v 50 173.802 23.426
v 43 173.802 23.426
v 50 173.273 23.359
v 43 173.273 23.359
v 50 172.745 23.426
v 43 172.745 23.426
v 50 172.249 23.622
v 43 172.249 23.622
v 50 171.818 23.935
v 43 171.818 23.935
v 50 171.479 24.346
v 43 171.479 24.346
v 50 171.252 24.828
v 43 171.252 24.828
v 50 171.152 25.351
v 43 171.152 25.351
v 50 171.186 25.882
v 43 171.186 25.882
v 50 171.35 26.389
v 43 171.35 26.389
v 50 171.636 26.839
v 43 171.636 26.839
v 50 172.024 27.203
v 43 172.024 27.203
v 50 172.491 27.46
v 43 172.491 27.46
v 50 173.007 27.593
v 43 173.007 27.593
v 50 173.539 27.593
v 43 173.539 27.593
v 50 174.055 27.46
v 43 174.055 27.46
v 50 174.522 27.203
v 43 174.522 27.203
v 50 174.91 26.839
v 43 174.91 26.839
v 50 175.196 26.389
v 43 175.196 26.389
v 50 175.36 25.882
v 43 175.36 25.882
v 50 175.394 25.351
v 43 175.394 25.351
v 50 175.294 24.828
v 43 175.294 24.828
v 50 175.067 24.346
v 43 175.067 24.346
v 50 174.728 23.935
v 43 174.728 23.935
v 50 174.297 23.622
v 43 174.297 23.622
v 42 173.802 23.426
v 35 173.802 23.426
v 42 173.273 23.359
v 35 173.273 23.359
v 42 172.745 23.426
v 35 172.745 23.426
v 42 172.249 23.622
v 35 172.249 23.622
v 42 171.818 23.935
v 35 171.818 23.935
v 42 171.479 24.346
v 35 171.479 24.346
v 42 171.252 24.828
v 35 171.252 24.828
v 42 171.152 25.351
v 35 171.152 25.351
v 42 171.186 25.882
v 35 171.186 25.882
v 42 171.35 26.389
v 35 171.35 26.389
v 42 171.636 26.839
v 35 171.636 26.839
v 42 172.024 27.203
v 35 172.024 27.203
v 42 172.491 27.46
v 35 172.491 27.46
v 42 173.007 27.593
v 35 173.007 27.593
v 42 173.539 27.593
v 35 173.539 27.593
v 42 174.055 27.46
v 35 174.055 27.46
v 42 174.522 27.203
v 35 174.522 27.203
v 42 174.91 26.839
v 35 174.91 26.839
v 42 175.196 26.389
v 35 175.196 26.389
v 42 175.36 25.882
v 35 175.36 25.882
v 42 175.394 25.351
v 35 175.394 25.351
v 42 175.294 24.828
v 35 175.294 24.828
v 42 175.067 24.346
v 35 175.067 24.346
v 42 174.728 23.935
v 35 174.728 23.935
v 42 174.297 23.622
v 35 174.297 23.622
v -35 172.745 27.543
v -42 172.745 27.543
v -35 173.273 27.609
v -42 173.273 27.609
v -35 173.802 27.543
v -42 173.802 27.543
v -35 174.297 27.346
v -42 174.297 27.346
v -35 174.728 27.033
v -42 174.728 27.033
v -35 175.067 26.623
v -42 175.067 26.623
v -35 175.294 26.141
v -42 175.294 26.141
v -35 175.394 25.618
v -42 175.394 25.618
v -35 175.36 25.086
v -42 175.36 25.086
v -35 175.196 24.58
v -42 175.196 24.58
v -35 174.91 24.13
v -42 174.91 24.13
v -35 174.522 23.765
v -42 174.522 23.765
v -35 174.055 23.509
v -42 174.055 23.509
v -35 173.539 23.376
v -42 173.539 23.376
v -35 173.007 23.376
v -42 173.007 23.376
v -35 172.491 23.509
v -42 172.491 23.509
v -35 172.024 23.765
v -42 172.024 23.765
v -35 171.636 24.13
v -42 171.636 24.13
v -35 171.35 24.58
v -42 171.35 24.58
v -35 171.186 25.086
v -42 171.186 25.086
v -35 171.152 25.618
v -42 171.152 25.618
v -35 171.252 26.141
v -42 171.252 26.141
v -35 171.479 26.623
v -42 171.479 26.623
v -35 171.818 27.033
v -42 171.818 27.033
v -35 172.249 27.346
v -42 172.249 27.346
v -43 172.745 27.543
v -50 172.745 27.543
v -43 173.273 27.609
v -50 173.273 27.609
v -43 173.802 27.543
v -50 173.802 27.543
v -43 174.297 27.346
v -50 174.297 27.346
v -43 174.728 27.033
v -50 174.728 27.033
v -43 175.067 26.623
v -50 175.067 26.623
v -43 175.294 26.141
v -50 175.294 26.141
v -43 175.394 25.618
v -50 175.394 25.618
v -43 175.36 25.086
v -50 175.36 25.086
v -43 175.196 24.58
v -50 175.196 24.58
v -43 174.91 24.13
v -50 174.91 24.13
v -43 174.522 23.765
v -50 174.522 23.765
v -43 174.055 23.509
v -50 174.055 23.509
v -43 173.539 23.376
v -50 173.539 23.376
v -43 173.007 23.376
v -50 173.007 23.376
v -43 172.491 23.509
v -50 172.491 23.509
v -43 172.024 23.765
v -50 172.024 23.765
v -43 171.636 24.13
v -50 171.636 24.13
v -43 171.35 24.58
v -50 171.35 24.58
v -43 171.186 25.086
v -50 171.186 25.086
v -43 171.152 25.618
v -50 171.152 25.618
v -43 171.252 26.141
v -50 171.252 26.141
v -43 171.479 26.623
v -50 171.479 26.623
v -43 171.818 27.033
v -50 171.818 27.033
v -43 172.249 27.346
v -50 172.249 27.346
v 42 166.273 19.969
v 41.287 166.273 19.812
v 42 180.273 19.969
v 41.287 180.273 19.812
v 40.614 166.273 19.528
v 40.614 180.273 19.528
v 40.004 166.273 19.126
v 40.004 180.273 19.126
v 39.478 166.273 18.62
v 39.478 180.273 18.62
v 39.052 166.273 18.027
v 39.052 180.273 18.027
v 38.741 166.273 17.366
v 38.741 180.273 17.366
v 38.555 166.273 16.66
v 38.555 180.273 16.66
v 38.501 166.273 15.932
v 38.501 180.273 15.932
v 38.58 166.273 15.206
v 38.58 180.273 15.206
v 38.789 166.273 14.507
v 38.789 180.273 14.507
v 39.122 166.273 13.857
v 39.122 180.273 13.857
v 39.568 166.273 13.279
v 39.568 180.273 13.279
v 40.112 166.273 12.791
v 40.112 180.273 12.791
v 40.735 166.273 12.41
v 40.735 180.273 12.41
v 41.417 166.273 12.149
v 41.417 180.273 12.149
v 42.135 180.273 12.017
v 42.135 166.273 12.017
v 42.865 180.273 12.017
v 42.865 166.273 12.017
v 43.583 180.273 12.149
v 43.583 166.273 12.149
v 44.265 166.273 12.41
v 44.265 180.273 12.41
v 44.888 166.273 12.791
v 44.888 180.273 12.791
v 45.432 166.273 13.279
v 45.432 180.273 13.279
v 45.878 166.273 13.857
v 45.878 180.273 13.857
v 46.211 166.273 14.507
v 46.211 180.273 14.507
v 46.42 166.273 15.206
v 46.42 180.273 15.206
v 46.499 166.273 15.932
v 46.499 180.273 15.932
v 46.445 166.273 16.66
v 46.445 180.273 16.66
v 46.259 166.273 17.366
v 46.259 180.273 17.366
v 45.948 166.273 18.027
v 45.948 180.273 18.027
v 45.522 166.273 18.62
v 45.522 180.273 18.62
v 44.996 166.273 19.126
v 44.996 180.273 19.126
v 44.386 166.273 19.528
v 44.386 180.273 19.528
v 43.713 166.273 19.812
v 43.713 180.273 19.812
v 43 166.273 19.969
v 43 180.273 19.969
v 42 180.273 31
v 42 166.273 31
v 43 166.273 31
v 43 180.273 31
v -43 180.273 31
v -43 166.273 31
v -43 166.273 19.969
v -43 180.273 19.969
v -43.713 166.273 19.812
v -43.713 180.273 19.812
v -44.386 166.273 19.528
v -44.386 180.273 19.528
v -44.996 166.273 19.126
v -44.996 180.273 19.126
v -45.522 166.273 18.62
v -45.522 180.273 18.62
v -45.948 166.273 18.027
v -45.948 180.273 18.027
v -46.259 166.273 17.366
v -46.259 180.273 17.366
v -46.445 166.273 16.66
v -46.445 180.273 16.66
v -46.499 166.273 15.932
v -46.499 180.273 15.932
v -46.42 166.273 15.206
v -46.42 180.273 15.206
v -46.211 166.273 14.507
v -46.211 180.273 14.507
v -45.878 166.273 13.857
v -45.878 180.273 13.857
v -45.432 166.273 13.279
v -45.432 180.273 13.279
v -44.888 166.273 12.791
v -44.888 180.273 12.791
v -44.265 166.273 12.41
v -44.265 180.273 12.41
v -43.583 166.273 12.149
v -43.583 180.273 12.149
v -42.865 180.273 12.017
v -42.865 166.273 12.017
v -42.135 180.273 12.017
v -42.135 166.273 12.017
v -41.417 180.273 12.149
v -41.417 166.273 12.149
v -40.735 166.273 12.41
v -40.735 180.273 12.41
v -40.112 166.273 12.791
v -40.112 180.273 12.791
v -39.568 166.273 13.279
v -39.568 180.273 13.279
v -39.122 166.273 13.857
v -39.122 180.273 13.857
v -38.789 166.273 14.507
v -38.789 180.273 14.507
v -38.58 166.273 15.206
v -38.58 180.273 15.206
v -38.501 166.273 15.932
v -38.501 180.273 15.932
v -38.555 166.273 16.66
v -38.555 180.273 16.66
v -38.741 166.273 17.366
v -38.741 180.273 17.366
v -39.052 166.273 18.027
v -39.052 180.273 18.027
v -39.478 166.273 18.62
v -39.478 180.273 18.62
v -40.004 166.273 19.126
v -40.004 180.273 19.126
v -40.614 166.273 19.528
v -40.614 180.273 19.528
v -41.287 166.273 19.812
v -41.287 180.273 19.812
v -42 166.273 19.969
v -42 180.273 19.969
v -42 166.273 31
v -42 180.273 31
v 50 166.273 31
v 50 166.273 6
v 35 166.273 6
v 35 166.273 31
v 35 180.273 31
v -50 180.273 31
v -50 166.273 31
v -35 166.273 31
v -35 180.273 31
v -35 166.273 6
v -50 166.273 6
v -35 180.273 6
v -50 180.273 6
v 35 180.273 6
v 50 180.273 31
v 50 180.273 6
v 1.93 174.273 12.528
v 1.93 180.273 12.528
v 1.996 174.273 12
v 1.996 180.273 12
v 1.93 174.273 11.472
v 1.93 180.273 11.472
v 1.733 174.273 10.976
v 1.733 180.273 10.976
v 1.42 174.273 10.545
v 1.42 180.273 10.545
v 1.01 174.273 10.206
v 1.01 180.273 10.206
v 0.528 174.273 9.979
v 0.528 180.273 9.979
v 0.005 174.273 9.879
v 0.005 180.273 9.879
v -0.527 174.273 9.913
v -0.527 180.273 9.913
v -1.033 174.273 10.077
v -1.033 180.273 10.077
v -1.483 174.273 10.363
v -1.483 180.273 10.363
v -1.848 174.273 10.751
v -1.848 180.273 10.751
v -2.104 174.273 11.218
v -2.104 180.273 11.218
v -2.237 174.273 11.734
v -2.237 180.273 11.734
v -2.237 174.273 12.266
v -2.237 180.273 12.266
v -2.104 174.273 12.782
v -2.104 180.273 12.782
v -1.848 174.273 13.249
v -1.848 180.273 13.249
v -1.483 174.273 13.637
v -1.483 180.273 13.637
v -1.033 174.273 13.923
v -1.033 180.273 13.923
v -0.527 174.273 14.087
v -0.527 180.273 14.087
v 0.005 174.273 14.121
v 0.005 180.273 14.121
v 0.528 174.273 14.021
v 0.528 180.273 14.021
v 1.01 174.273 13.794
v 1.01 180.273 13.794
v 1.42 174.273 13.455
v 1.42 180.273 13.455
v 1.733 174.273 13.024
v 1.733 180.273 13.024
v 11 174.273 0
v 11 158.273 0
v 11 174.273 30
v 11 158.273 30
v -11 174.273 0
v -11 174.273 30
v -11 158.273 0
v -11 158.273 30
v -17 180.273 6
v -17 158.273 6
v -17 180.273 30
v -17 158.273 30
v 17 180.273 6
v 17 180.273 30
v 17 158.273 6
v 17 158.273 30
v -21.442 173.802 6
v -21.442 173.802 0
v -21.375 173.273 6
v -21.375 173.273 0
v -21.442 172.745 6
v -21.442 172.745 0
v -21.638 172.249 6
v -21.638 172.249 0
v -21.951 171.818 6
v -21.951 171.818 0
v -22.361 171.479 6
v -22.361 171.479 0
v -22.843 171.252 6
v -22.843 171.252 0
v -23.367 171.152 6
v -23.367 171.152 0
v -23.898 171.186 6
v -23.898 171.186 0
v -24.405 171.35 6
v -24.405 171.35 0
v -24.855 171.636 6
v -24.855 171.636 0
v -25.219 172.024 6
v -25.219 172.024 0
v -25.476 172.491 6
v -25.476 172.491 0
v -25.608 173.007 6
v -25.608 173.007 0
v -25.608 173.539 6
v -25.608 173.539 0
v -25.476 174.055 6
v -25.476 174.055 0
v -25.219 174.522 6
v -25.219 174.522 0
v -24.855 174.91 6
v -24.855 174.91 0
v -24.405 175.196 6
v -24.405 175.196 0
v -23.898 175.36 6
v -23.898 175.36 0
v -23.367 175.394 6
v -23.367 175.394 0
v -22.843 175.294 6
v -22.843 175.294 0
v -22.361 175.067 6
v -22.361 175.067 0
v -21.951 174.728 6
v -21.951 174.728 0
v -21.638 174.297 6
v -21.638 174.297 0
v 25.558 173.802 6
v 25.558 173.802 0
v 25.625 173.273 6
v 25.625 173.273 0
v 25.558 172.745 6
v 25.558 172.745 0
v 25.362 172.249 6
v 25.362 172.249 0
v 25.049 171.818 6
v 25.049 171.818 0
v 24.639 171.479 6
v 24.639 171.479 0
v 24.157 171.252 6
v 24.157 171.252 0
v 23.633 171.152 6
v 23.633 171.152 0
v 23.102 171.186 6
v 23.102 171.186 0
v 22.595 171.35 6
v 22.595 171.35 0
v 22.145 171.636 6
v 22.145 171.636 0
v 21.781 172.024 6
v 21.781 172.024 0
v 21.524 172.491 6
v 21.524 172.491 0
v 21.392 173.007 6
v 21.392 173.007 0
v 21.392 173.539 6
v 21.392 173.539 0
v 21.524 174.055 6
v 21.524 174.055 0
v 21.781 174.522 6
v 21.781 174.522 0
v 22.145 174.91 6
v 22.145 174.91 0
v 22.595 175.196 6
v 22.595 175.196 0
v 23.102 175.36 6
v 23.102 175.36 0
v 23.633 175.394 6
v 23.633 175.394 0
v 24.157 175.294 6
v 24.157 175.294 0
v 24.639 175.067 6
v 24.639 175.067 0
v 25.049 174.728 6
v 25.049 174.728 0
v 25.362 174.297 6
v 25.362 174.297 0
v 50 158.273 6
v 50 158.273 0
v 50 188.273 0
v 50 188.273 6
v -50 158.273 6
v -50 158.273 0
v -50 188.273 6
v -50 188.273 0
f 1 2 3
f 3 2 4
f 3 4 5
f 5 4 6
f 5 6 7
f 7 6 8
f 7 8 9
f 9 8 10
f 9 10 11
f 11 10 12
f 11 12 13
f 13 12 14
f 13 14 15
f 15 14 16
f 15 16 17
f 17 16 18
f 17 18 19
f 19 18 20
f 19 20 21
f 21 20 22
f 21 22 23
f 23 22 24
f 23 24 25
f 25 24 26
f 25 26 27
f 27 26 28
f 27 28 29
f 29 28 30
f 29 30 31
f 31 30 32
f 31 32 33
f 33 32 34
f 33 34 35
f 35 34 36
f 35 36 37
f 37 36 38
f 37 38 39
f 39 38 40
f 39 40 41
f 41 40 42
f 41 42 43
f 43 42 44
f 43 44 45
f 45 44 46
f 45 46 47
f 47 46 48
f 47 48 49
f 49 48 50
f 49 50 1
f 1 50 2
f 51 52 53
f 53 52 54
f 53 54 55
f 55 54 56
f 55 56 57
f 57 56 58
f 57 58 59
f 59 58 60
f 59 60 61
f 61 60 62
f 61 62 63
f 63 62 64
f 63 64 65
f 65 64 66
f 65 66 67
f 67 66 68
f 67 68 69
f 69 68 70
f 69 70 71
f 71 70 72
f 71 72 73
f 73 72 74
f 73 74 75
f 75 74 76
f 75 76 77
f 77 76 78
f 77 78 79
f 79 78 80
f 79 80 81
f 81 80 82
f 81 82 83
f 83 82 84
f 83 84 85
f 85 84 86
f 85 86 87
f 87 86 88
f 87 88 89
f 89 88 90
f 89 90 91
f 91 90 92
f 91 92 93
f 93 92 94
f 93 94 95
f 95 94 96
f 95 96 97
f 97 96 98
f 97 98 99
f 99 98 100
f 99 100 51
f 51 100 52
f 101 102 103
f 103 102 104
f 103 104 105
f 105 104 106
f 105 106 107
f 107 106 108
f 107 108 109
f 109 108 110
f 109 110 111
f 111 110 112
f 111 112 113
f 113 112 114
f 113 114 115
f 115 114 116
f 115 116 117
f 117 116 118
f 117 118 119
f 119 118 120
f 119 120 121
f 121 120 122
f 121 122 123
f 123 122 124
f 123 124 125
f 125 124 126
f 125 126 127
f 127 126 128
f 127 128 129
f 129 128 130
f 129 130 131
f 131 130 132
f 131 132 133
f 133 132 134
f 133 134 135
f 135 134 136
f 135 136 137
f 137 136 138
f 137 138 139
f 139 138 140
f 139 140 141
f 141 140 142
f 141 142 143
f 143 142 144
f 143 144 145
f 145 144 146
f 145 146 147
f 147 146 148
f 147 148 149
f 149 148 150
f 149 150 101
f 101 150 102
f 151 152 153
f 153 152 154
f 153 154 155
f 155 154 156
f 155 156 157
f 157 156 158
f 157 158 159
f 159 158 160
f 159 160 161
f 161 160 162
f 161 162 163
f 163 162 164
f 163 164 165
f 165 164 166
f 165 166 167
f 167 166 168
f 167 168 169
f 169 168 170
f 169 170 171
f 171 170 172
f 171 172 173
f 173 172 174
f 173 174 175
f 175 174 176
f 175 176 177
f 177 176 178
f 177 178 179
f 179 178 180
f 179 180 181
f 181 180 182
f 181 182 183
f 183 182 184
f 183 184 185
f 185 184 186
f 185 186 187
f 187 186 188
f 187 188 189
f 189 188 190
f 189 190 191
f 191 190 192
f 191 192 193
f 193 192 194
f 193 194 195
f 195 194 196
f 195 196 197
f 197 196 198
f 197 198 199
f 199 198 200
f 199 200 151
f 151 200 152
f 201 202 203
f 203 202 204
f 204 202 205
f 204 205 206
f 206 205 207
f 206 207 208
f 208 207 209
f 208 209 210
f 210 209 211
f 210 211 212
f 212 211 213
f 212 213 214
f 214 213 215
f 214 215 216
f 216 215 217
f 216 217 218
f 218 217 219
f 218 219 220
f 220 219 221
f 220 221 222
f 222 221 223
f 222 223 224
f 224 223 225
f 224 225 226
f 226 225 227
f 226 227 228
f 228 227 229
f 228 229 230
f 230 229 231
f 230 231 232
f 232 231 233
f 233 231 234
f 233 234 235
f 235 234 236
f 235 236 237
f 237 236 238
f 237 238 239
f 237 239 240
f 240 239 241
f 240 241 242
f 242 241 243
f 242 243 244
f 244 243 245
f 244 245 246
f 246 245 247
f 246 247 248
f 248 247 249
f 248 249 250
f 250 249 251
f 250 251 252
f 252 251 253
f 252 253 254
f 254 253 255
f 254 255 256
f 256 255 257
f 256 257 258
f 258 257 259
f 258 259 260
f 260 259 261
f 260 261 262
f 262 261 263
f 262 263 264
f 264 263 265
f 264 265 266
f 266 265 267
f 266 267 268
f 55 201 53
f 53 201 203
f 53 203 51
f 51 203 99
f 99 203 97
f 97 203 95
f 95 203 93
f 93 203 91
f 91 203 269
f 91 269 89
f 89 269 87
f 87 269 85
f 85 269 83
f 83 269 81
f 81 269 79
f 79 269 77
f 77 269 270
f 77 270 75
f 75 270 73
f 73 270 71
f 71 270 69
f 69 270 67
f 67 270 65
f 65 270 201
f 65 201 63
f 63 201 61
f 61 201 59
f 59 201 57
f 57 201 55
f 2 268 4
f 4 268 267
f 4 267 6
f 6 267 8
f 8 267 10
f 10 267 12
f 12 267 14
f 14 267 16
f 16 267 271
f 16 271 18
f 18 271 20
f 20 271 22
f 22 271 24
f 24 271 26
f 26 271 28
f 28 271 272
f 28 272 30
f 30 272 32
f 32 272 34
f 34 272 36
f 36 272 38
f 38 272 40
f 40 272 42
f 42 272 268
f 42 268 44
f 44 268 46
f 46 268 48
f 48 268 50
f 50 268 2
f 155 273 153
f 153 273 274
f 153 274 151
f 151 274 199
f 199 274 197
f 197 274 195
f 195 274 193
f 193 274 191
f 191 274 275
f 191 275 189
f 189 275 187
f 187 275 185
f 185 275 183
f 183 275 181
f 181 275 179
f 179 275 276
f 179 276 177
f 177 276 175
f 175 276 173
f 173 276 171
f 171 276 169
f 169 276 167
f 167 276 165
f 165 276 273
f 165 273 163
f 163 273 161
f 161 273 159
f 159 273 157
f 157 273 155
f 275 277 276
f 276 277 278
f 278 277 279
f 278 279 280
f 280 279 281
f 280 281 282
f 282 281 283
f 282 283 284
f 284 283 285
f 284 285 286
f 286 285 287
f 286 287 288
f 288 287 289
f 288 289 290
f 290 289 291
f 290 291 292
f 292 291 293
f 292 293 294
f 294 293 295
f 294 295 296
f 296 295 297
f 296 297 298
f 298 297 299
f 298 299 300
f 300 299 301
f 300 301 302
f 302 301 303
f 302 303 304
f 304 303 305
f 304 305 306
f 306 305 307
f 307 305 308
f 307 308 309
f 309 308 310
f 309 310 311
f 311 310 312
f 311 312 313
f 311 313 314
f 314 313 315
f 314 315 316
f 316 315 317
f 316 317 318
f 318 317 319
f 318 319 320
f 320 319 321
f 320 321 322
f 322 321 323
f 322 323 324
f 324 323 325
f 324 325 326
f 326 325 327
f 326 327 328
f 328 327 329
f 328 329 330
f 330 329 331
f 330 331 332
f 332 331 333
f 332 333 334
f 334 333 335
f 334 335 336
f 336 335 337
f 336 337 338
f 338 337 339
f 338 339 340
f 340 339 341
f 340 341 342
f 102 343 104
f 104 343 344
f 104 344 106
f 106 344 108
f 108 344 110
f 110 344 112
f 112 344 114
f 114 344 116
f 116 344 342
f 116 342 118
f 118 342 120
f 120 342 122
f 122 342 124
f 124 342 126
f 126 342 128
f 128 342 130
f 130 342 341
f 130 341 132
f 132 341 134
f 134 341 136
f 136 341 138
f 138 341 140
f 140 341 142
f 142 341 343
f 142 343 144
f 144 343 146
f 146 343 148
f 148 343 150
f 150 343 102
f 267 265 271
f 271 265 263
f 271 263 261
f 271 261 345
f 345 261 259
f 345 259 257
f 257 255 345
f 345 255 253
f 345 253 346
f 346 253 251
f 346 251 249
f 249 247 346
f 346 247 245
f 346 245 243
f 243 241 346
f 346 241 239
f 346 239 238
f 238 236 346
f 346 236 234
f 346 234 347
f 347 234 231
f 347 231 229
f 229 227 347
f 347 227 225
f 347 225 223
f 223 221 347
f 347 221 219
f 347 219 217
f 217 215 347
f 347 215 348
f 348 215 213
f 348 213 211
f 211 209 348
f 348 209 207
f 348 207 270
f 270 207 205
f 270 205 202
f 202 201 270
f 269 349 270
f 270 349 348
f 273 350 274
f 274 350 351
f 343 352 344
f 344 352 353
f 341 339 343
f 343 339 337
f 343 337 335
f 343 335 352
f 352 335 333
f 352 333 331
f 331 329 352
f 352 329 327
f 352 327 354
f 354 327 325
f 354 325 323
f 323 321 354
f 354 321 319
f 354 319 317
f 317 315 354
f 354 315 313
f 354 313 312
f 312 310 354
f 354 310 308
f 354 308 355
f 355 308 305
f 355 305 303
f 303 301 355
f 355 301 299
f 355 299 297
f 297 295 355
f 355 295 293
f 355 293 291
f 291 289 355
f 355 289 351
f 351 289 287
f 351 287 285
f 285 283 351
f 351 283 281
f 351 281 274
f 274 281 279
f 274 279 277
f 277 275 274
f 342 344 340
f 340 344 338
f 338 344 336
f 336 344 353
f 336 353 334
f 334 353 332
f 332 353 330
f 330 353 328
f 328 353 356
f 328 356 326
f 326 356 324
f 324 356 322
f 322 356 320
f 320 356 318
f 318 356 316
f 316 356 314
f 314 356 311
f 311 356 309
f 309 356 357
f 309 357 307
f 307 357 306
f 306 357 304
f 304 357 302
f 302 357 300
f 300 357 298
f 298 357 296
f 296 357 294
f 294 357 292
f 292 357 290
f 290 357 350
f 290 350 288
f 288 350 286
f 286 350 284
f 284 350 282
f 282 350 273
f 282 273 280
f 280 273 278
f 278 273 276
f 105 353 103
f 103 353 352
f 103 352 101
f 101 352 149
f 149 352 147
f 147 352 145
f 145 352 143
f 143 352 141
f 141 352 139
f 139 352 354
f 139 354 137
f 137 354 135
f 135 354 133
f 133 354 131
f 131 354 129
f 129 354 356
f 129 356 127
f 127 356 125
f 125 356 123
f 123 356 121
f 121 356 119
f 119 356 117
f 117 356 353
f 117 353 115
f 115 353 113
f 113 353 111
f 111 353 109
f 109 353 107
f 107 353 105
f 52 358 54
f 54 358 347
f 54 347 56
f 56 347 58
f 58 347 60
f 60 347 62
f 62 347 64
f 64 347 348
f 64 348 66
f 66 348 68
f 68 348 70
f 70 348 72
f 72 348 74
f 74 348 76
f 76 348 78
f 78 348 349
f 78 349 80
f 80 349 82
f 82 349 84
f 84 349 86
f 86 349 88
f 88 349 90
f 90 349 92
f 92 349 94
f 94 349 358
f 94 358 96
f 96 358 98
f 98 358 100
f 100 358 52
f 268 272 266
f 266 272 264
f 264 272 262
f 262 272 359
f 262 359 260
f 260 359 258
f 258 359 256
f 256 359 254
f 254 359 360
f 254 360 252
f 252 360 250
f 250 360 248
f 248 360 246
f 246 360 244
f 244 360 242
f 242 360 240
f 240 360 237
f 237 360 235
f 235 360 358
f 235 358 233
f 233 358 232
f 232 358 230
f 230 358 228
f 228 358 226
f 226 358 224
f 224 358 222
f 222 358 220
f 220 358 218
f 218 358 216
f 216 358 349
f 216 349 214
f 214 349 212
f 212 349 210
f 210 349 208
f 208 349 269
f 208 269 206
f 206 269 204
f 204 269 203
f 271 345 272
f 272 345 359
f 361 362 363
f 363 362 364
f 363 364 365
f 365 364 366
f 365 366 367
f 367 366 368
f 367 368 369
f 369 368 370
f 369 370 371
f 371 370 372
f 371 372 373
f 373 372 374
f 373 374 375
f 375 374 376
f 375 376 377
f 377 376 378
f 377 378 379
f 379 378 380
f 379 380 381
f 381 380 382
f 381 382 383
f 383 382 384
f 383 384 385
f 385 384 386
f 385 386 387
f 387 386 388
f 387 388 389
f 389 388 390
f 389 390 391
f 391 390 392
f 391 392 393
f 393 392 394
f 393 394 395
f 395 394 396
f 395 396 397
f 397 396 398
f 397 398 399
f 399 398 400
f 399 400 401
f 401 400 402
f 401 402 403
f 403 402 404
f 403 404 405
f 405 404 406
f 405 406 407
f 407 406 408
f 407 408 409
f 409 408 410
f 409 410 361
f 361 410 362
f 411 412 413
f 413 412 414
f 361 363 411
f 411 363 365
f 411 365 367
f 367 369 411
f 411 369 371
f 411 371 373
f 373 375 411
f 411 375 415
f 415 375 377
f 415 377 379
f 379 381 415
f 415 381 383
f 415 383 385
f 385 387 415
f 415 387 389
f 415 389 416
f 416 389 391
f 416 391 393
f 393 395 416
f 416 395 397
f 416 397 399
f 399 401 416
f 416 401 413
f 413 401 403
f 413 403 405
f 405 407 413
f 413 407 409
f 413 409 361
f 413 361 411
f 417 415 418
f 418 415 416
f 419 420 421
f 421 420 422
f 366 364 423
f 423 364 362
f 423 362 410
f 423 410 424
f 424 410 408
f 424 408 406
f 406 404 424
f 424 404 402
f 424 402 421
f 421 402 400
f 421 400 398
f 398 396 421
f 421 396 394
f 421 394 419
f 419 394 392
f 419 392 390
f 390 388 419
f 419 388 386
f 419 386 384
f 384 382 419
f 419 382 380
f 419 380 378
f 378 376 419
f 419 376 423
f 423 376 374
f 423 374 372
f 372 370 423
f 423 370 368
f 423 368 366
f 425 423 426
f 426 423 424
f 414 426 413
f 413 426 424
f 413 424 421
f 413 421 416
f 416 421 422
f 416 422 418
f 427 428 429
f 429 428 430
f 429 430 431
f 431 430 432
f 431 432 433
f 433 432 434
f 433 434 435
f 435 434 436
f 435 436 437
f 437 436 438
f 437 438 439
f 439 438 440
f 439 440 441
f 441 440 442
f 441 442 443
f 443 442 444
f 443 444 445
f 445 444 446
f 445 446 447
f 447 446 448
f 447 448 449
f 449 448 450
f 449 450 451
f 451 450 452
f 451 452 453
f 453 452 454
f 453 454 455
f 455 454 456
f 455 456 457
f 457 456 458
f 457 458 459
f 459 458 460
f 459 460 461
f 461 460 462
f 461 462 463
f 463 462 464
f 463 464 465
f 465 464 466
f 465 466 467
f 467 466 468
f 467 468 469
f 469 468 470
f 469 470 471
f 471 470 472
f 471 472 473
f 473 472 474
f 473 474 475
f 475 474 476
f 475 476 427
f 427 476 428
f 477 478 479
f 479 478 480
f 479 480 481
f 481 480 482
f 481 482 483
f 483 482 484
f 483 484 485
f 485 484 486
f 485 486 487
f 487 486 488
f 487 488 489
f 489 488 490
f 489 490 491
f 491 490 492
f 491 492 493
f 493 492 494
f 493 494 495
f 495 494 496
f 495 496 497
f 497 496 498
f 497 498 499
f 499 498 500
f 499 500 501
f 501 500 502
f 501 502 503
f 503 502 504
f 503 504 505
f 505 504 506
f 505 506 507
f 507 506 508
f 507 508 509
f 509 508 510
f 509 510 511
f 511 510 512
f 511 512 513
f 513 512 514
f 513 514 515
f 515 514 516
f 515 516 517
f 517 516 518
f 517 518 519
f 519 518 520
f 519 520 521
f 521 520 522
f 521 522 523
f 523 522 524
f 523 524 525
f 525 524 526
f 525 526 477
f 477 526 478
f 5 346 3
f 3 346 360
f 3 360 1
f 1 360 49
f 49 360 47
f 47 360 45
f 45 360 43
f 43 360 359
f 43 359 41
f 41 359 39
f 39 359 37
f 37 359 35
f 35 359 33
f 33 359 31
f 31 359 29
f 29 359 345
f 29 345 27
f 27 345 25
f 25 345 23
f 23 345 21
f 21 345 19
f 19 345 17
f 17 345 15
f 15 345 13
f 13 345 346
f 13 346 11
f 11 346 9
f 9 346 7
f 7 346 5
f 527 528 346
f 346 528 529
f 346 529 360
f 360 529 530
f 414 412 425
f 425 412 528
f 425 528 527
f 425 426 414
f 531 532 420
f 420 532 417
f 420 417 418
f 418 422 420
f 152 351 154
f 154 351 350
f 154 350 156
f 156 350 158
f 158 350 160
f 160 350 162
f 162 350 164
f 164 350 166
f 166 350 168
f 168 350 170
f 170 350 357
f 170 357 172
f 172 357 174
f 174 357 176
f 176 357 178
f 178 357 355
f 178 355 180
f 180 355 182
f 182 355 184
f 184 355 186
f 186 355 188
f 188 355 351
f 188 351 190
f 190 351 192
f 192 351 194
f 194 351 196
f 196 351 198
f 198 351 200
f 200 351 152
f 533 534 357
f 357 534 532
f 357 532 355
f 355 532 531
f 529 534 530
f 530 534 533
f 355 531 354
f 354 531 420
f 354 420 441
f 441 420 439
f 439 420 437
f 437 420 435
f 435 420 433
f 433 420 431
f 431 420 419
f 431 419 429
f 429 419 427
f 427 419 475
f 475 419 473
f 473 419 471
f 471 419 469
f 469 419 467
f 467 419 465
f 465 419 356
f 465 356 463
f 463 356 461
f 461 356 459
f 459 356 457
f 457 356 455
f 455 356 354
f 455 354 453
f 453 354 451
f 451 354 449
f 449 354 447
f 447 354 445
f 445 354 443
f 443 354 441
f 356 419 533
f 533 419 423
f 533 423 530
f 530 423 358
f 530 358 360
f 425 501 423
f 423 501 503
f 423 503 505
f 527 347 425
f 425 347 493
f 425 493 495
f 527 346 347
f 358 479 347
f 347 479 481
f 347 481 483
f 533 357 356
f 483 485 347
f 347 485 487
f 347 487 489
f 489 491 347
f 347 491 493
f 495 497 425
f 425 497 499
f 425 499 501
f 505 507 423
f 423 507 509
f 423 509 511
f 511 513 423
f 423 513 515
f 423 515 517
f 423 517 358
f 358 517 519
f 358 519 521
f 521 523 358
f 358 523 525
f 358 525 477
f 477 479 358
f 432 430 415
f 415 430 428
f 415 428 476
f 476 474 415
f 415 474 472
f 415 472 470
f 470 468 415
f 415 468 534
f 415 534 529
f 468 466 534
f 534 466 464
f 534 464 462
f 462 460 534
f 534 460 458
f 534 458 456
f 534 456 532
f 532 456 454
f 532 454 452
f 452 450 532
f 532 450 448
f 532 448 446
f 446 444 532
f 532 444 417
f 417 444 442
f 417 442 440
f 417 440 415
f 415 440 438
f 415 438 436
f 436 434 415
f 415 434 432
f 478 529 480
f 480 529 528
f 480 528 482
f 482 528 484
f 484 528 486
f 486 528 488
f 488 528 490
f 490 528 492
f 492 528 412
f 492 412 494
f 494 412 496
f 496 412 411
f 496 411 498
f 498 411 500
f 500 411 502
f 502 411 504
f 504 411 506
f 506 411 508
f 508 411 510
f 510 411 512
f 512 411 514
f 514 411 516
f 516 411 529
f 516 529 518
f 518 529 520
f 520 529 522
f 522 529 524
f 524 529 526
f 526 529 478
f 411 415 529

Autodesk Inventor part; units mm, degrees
ref_plane "YZ Plane" through (0, 0, 0) normal (1, 0, 0) x (0, 1, 0)
ref_plane "XZ Plane" through (0, 0, 0) normal (0, 1, 0) x (-1, 0, 0)
ref_plane "XY Plane" through (0, 0, 0) normal (0, 0, 1) x (1, 0, 0)
sketch "Sketch1" plane through (0, 0, 0) normal (0, 0, 1) x (1, 0, 0)
  line L0 (50, 188.2731) -> (-50, 188.2731)
  line L1 (-50, 188.2731) -> (-50, 158.2731)
  line L2 (50, 158.2731) -> (50, 188.2731)
  line L3 (11, 158.2731) -> (11, 174.2731)
  line L4 (11, 174.2731) -> (-11, 174.2731)
  line L5 (-11, 174.2731) -> (-11, 158.2731)
  line L6 (17, 158.2731) -> (17, 180.2731)
  line L7 (17, 180.2731) -> (-17, 180.2731)
  line L8 (-17, 180.2731) -> (-17, 158.2731)
  line L9 (17, 158.2731) -> (50, 158.2731)
  line L10 (11, 158.2731) -> (17, 158.2731)
  line L11 (-11, 158.2731) -> (-17, 158.2731)
  line L12 (-17, 158.2731) -> (-50, 158.2731)
  circle A0 centre (23.5, 173.2731) radius 2.125
  circle A1 centre (-23.5, 173.2731) radius 2.125
  line L13 (0, 0) -> (0, 215.8038) construction
  line L14 (0, 158.2731) -> (11, 158.2731) construction
  line L15 (0, 158.2731) -> (-11, 158.2731) construction
  line L16 (-23.5, 173.2731) -> (23.5, 173.2731) construction
  line L17 (-23.5, 173.2731) -> (-23.5, 188.2731) construction
  line L18 (-23.5, 173.2731) -> (-23.5, 158.2731) construction
  dimension "d1" = 30
  dimension "d2" = 100
  dimension "d3" = 22
  dimension "d4" = 6
  dimension "d5" = 16
  dimension "d6" = 6
  dimension "d11" = 4.25
  dimension "d13" = 4.25
  dimension "d18" = 47
extrude "Extrusion1" add sketch "Sketch1" along normal blind 6 contours L2 L9 L6 L7 L8 L12 L1 L0
extrude "Extrusion2" add sketch "Sketch1" along normal blind 30 contours L10 L3 L4 L5 L11 L8 L7 L6
sketch "Sketch2" plane through (-17, 180.2731, 6) normal (0, 1, 0) x (1, 0, 0)
  circle A0 centre (16.8713, -6) radius 2.125
  line L0 (16.8713, -6) -> (33.9314, -6) construction
  line L1 (16.8713, -6) -> (-0.1889, -6) construction
  line L2 (67, 6) -> (-33, 6) projected
  point P0 (17, 6)
  dimension "d14" = 4.25
  dimension "d15" = 12
extrude "Extrusion3" cut sketch "Sketch2" against normal up to next
sketch "Sketch3" plane through (0, 0, 6) normal (0, 0, 1) x (1, 0, 0)
  line L0 (50, 158.2731) -> (50, 188.2731) projected
  line L1 (50, 180.2731) -> (35, 180.2731)
  line L2 (35, 180.2731) -> (35, 166.2731)
  line L3 (35, 166.2731) -> (50, 166.2731)
  line L4 (43.2299, 188.2731) -> (43.2299, 180.2731) construction
  line L5 (43.4666, 166.2731) -> (43.4666, 158.2731) construction
  line L6 (50, 188.2731) -> (-50, 188.2731) projected
  line L7 (17, 158.2731) -> (50, 158.2731) projected
  line L8 (-50, 188.2731) -> (-50, 158.2731) projected
  line L9 (-50, 180.2731) -> (-35, 180.2731)
  line L10 (-35, 180.2731) -> (-35, 166.2731)
  line L11 (-35, 166.2731) -> (-50, 166.2731)
  line L12 (-50, 166.2731) -> (-50, 180.2731)
  point P0 (0, 0)
  dimension "d19" = 15
  dimension "d20" = 14
extrude "Extrusion4" add sketch "Sketch3" along normal blind 25
sketch "Sketch4" plane through (35, 180.2731, 6) normal (0, 1, 0) x (1, 0, 0)
  circle A0 centre (7.5, -10) radius 4
  line L0 (7.5, -10) -> (15, -10) construction
  line L1 (15, 0) -> (15, -25) projected
  line L2 (7.5, -10) -> (0, -10) construction
  line L3 (0, 0) -> (0, -25) projected
  line L4 (15, 6) -> (-85, 6) projected
  line L5 (8, -13.9686) -> (8, -25)
  line L6 (7, -13.9686) -> (7, -25)
  line L7 (8, -37.8452) -> (15, -37.8452) construction
  line L8 (7, -37.8452) -> (0, -37.8452) construction
  circle A1 centre (-77.5, -10) radius 4
  line L9 (-85, -25) -> (-70, -25) projected
  line L10 (-78, -13.9686) -> (-78, -25)
  line L11 (-77, -37.6694) -> (-70, -37.6694) construction
  line L12 (-78, -37.628) -> (-85, -37.628) construction
  line L13 (-85, 0) -> (-85, -25) projected
  line L14 (-70, 0) -> (-70, -25) projected
  line L15 (-77, -13.9686) -> (-77, -25)
  line L16 (-77.5, -10) -> (-70, -10) construction
  line L17 (-77.5, -10) -> (-85, -10) construction
  line L18 (-77, -25) -> (-78, -25)
  line L19 (8, -25) -> (7, -25)
  line L20 (0, -25) -> (15, -25) projected
  point P0 (-35, 6)
  dimension "d23" = 8
  dimension "d24" = 16
  dimension "d25" = 1
  dimension "d26" = 8
  dimension "d27" = 1
extrude "Extrusion5" cut sketch "Sketch4" against normal up to next
sketch "Sketch5" plane through (-50, 158.2731, 0) normal (-1, 0, 0) x (0, 0, 1)
  circle A0 centre (25.4843, 15) radius 2.125
  line L0 (0, 30) -> (0, 0) projected
  line L1 (25.4843, 15) -> (25.4843, 22)
  line L2 (6, 22) -> (31, 22) projected
  line L3 (25.4843, 15) -> (25.4843, 8)
  line L4 (6, 8) -> (31, 8) projected
  line L5 (25.4843, 15) -> (19.9686, 15)
  line L6 (25.4843, 15) -> (31, 15)
  line L7 (31, 22) -> (31, 8) projected
  line L8 (19.9686, 22) -> (19.9686, 8) projected
  point P0 (0, -158.2731)
  dimension "d30" = 4.25
extrude "Extrusion6" cut sketch "Sketch5" against normal up to surface (15 mm away) contours L6 L1 A0 | A0 L3 L6 | L1 L5 A0 | A0 L5 L3
sketch "Sketch6" plane through (50, 158.2731, 0) normal (1, 0, 0) x (0, 0, -1)
  circle A0 centre (-25.4843, 15) radius 2.125 projected
  point P0 (0, -158.2731)
extrude "Extrusion7" cut sketch "Sketch6" against normal up to surface (15 mm away)
properties part number "YPulleySupportBase"
